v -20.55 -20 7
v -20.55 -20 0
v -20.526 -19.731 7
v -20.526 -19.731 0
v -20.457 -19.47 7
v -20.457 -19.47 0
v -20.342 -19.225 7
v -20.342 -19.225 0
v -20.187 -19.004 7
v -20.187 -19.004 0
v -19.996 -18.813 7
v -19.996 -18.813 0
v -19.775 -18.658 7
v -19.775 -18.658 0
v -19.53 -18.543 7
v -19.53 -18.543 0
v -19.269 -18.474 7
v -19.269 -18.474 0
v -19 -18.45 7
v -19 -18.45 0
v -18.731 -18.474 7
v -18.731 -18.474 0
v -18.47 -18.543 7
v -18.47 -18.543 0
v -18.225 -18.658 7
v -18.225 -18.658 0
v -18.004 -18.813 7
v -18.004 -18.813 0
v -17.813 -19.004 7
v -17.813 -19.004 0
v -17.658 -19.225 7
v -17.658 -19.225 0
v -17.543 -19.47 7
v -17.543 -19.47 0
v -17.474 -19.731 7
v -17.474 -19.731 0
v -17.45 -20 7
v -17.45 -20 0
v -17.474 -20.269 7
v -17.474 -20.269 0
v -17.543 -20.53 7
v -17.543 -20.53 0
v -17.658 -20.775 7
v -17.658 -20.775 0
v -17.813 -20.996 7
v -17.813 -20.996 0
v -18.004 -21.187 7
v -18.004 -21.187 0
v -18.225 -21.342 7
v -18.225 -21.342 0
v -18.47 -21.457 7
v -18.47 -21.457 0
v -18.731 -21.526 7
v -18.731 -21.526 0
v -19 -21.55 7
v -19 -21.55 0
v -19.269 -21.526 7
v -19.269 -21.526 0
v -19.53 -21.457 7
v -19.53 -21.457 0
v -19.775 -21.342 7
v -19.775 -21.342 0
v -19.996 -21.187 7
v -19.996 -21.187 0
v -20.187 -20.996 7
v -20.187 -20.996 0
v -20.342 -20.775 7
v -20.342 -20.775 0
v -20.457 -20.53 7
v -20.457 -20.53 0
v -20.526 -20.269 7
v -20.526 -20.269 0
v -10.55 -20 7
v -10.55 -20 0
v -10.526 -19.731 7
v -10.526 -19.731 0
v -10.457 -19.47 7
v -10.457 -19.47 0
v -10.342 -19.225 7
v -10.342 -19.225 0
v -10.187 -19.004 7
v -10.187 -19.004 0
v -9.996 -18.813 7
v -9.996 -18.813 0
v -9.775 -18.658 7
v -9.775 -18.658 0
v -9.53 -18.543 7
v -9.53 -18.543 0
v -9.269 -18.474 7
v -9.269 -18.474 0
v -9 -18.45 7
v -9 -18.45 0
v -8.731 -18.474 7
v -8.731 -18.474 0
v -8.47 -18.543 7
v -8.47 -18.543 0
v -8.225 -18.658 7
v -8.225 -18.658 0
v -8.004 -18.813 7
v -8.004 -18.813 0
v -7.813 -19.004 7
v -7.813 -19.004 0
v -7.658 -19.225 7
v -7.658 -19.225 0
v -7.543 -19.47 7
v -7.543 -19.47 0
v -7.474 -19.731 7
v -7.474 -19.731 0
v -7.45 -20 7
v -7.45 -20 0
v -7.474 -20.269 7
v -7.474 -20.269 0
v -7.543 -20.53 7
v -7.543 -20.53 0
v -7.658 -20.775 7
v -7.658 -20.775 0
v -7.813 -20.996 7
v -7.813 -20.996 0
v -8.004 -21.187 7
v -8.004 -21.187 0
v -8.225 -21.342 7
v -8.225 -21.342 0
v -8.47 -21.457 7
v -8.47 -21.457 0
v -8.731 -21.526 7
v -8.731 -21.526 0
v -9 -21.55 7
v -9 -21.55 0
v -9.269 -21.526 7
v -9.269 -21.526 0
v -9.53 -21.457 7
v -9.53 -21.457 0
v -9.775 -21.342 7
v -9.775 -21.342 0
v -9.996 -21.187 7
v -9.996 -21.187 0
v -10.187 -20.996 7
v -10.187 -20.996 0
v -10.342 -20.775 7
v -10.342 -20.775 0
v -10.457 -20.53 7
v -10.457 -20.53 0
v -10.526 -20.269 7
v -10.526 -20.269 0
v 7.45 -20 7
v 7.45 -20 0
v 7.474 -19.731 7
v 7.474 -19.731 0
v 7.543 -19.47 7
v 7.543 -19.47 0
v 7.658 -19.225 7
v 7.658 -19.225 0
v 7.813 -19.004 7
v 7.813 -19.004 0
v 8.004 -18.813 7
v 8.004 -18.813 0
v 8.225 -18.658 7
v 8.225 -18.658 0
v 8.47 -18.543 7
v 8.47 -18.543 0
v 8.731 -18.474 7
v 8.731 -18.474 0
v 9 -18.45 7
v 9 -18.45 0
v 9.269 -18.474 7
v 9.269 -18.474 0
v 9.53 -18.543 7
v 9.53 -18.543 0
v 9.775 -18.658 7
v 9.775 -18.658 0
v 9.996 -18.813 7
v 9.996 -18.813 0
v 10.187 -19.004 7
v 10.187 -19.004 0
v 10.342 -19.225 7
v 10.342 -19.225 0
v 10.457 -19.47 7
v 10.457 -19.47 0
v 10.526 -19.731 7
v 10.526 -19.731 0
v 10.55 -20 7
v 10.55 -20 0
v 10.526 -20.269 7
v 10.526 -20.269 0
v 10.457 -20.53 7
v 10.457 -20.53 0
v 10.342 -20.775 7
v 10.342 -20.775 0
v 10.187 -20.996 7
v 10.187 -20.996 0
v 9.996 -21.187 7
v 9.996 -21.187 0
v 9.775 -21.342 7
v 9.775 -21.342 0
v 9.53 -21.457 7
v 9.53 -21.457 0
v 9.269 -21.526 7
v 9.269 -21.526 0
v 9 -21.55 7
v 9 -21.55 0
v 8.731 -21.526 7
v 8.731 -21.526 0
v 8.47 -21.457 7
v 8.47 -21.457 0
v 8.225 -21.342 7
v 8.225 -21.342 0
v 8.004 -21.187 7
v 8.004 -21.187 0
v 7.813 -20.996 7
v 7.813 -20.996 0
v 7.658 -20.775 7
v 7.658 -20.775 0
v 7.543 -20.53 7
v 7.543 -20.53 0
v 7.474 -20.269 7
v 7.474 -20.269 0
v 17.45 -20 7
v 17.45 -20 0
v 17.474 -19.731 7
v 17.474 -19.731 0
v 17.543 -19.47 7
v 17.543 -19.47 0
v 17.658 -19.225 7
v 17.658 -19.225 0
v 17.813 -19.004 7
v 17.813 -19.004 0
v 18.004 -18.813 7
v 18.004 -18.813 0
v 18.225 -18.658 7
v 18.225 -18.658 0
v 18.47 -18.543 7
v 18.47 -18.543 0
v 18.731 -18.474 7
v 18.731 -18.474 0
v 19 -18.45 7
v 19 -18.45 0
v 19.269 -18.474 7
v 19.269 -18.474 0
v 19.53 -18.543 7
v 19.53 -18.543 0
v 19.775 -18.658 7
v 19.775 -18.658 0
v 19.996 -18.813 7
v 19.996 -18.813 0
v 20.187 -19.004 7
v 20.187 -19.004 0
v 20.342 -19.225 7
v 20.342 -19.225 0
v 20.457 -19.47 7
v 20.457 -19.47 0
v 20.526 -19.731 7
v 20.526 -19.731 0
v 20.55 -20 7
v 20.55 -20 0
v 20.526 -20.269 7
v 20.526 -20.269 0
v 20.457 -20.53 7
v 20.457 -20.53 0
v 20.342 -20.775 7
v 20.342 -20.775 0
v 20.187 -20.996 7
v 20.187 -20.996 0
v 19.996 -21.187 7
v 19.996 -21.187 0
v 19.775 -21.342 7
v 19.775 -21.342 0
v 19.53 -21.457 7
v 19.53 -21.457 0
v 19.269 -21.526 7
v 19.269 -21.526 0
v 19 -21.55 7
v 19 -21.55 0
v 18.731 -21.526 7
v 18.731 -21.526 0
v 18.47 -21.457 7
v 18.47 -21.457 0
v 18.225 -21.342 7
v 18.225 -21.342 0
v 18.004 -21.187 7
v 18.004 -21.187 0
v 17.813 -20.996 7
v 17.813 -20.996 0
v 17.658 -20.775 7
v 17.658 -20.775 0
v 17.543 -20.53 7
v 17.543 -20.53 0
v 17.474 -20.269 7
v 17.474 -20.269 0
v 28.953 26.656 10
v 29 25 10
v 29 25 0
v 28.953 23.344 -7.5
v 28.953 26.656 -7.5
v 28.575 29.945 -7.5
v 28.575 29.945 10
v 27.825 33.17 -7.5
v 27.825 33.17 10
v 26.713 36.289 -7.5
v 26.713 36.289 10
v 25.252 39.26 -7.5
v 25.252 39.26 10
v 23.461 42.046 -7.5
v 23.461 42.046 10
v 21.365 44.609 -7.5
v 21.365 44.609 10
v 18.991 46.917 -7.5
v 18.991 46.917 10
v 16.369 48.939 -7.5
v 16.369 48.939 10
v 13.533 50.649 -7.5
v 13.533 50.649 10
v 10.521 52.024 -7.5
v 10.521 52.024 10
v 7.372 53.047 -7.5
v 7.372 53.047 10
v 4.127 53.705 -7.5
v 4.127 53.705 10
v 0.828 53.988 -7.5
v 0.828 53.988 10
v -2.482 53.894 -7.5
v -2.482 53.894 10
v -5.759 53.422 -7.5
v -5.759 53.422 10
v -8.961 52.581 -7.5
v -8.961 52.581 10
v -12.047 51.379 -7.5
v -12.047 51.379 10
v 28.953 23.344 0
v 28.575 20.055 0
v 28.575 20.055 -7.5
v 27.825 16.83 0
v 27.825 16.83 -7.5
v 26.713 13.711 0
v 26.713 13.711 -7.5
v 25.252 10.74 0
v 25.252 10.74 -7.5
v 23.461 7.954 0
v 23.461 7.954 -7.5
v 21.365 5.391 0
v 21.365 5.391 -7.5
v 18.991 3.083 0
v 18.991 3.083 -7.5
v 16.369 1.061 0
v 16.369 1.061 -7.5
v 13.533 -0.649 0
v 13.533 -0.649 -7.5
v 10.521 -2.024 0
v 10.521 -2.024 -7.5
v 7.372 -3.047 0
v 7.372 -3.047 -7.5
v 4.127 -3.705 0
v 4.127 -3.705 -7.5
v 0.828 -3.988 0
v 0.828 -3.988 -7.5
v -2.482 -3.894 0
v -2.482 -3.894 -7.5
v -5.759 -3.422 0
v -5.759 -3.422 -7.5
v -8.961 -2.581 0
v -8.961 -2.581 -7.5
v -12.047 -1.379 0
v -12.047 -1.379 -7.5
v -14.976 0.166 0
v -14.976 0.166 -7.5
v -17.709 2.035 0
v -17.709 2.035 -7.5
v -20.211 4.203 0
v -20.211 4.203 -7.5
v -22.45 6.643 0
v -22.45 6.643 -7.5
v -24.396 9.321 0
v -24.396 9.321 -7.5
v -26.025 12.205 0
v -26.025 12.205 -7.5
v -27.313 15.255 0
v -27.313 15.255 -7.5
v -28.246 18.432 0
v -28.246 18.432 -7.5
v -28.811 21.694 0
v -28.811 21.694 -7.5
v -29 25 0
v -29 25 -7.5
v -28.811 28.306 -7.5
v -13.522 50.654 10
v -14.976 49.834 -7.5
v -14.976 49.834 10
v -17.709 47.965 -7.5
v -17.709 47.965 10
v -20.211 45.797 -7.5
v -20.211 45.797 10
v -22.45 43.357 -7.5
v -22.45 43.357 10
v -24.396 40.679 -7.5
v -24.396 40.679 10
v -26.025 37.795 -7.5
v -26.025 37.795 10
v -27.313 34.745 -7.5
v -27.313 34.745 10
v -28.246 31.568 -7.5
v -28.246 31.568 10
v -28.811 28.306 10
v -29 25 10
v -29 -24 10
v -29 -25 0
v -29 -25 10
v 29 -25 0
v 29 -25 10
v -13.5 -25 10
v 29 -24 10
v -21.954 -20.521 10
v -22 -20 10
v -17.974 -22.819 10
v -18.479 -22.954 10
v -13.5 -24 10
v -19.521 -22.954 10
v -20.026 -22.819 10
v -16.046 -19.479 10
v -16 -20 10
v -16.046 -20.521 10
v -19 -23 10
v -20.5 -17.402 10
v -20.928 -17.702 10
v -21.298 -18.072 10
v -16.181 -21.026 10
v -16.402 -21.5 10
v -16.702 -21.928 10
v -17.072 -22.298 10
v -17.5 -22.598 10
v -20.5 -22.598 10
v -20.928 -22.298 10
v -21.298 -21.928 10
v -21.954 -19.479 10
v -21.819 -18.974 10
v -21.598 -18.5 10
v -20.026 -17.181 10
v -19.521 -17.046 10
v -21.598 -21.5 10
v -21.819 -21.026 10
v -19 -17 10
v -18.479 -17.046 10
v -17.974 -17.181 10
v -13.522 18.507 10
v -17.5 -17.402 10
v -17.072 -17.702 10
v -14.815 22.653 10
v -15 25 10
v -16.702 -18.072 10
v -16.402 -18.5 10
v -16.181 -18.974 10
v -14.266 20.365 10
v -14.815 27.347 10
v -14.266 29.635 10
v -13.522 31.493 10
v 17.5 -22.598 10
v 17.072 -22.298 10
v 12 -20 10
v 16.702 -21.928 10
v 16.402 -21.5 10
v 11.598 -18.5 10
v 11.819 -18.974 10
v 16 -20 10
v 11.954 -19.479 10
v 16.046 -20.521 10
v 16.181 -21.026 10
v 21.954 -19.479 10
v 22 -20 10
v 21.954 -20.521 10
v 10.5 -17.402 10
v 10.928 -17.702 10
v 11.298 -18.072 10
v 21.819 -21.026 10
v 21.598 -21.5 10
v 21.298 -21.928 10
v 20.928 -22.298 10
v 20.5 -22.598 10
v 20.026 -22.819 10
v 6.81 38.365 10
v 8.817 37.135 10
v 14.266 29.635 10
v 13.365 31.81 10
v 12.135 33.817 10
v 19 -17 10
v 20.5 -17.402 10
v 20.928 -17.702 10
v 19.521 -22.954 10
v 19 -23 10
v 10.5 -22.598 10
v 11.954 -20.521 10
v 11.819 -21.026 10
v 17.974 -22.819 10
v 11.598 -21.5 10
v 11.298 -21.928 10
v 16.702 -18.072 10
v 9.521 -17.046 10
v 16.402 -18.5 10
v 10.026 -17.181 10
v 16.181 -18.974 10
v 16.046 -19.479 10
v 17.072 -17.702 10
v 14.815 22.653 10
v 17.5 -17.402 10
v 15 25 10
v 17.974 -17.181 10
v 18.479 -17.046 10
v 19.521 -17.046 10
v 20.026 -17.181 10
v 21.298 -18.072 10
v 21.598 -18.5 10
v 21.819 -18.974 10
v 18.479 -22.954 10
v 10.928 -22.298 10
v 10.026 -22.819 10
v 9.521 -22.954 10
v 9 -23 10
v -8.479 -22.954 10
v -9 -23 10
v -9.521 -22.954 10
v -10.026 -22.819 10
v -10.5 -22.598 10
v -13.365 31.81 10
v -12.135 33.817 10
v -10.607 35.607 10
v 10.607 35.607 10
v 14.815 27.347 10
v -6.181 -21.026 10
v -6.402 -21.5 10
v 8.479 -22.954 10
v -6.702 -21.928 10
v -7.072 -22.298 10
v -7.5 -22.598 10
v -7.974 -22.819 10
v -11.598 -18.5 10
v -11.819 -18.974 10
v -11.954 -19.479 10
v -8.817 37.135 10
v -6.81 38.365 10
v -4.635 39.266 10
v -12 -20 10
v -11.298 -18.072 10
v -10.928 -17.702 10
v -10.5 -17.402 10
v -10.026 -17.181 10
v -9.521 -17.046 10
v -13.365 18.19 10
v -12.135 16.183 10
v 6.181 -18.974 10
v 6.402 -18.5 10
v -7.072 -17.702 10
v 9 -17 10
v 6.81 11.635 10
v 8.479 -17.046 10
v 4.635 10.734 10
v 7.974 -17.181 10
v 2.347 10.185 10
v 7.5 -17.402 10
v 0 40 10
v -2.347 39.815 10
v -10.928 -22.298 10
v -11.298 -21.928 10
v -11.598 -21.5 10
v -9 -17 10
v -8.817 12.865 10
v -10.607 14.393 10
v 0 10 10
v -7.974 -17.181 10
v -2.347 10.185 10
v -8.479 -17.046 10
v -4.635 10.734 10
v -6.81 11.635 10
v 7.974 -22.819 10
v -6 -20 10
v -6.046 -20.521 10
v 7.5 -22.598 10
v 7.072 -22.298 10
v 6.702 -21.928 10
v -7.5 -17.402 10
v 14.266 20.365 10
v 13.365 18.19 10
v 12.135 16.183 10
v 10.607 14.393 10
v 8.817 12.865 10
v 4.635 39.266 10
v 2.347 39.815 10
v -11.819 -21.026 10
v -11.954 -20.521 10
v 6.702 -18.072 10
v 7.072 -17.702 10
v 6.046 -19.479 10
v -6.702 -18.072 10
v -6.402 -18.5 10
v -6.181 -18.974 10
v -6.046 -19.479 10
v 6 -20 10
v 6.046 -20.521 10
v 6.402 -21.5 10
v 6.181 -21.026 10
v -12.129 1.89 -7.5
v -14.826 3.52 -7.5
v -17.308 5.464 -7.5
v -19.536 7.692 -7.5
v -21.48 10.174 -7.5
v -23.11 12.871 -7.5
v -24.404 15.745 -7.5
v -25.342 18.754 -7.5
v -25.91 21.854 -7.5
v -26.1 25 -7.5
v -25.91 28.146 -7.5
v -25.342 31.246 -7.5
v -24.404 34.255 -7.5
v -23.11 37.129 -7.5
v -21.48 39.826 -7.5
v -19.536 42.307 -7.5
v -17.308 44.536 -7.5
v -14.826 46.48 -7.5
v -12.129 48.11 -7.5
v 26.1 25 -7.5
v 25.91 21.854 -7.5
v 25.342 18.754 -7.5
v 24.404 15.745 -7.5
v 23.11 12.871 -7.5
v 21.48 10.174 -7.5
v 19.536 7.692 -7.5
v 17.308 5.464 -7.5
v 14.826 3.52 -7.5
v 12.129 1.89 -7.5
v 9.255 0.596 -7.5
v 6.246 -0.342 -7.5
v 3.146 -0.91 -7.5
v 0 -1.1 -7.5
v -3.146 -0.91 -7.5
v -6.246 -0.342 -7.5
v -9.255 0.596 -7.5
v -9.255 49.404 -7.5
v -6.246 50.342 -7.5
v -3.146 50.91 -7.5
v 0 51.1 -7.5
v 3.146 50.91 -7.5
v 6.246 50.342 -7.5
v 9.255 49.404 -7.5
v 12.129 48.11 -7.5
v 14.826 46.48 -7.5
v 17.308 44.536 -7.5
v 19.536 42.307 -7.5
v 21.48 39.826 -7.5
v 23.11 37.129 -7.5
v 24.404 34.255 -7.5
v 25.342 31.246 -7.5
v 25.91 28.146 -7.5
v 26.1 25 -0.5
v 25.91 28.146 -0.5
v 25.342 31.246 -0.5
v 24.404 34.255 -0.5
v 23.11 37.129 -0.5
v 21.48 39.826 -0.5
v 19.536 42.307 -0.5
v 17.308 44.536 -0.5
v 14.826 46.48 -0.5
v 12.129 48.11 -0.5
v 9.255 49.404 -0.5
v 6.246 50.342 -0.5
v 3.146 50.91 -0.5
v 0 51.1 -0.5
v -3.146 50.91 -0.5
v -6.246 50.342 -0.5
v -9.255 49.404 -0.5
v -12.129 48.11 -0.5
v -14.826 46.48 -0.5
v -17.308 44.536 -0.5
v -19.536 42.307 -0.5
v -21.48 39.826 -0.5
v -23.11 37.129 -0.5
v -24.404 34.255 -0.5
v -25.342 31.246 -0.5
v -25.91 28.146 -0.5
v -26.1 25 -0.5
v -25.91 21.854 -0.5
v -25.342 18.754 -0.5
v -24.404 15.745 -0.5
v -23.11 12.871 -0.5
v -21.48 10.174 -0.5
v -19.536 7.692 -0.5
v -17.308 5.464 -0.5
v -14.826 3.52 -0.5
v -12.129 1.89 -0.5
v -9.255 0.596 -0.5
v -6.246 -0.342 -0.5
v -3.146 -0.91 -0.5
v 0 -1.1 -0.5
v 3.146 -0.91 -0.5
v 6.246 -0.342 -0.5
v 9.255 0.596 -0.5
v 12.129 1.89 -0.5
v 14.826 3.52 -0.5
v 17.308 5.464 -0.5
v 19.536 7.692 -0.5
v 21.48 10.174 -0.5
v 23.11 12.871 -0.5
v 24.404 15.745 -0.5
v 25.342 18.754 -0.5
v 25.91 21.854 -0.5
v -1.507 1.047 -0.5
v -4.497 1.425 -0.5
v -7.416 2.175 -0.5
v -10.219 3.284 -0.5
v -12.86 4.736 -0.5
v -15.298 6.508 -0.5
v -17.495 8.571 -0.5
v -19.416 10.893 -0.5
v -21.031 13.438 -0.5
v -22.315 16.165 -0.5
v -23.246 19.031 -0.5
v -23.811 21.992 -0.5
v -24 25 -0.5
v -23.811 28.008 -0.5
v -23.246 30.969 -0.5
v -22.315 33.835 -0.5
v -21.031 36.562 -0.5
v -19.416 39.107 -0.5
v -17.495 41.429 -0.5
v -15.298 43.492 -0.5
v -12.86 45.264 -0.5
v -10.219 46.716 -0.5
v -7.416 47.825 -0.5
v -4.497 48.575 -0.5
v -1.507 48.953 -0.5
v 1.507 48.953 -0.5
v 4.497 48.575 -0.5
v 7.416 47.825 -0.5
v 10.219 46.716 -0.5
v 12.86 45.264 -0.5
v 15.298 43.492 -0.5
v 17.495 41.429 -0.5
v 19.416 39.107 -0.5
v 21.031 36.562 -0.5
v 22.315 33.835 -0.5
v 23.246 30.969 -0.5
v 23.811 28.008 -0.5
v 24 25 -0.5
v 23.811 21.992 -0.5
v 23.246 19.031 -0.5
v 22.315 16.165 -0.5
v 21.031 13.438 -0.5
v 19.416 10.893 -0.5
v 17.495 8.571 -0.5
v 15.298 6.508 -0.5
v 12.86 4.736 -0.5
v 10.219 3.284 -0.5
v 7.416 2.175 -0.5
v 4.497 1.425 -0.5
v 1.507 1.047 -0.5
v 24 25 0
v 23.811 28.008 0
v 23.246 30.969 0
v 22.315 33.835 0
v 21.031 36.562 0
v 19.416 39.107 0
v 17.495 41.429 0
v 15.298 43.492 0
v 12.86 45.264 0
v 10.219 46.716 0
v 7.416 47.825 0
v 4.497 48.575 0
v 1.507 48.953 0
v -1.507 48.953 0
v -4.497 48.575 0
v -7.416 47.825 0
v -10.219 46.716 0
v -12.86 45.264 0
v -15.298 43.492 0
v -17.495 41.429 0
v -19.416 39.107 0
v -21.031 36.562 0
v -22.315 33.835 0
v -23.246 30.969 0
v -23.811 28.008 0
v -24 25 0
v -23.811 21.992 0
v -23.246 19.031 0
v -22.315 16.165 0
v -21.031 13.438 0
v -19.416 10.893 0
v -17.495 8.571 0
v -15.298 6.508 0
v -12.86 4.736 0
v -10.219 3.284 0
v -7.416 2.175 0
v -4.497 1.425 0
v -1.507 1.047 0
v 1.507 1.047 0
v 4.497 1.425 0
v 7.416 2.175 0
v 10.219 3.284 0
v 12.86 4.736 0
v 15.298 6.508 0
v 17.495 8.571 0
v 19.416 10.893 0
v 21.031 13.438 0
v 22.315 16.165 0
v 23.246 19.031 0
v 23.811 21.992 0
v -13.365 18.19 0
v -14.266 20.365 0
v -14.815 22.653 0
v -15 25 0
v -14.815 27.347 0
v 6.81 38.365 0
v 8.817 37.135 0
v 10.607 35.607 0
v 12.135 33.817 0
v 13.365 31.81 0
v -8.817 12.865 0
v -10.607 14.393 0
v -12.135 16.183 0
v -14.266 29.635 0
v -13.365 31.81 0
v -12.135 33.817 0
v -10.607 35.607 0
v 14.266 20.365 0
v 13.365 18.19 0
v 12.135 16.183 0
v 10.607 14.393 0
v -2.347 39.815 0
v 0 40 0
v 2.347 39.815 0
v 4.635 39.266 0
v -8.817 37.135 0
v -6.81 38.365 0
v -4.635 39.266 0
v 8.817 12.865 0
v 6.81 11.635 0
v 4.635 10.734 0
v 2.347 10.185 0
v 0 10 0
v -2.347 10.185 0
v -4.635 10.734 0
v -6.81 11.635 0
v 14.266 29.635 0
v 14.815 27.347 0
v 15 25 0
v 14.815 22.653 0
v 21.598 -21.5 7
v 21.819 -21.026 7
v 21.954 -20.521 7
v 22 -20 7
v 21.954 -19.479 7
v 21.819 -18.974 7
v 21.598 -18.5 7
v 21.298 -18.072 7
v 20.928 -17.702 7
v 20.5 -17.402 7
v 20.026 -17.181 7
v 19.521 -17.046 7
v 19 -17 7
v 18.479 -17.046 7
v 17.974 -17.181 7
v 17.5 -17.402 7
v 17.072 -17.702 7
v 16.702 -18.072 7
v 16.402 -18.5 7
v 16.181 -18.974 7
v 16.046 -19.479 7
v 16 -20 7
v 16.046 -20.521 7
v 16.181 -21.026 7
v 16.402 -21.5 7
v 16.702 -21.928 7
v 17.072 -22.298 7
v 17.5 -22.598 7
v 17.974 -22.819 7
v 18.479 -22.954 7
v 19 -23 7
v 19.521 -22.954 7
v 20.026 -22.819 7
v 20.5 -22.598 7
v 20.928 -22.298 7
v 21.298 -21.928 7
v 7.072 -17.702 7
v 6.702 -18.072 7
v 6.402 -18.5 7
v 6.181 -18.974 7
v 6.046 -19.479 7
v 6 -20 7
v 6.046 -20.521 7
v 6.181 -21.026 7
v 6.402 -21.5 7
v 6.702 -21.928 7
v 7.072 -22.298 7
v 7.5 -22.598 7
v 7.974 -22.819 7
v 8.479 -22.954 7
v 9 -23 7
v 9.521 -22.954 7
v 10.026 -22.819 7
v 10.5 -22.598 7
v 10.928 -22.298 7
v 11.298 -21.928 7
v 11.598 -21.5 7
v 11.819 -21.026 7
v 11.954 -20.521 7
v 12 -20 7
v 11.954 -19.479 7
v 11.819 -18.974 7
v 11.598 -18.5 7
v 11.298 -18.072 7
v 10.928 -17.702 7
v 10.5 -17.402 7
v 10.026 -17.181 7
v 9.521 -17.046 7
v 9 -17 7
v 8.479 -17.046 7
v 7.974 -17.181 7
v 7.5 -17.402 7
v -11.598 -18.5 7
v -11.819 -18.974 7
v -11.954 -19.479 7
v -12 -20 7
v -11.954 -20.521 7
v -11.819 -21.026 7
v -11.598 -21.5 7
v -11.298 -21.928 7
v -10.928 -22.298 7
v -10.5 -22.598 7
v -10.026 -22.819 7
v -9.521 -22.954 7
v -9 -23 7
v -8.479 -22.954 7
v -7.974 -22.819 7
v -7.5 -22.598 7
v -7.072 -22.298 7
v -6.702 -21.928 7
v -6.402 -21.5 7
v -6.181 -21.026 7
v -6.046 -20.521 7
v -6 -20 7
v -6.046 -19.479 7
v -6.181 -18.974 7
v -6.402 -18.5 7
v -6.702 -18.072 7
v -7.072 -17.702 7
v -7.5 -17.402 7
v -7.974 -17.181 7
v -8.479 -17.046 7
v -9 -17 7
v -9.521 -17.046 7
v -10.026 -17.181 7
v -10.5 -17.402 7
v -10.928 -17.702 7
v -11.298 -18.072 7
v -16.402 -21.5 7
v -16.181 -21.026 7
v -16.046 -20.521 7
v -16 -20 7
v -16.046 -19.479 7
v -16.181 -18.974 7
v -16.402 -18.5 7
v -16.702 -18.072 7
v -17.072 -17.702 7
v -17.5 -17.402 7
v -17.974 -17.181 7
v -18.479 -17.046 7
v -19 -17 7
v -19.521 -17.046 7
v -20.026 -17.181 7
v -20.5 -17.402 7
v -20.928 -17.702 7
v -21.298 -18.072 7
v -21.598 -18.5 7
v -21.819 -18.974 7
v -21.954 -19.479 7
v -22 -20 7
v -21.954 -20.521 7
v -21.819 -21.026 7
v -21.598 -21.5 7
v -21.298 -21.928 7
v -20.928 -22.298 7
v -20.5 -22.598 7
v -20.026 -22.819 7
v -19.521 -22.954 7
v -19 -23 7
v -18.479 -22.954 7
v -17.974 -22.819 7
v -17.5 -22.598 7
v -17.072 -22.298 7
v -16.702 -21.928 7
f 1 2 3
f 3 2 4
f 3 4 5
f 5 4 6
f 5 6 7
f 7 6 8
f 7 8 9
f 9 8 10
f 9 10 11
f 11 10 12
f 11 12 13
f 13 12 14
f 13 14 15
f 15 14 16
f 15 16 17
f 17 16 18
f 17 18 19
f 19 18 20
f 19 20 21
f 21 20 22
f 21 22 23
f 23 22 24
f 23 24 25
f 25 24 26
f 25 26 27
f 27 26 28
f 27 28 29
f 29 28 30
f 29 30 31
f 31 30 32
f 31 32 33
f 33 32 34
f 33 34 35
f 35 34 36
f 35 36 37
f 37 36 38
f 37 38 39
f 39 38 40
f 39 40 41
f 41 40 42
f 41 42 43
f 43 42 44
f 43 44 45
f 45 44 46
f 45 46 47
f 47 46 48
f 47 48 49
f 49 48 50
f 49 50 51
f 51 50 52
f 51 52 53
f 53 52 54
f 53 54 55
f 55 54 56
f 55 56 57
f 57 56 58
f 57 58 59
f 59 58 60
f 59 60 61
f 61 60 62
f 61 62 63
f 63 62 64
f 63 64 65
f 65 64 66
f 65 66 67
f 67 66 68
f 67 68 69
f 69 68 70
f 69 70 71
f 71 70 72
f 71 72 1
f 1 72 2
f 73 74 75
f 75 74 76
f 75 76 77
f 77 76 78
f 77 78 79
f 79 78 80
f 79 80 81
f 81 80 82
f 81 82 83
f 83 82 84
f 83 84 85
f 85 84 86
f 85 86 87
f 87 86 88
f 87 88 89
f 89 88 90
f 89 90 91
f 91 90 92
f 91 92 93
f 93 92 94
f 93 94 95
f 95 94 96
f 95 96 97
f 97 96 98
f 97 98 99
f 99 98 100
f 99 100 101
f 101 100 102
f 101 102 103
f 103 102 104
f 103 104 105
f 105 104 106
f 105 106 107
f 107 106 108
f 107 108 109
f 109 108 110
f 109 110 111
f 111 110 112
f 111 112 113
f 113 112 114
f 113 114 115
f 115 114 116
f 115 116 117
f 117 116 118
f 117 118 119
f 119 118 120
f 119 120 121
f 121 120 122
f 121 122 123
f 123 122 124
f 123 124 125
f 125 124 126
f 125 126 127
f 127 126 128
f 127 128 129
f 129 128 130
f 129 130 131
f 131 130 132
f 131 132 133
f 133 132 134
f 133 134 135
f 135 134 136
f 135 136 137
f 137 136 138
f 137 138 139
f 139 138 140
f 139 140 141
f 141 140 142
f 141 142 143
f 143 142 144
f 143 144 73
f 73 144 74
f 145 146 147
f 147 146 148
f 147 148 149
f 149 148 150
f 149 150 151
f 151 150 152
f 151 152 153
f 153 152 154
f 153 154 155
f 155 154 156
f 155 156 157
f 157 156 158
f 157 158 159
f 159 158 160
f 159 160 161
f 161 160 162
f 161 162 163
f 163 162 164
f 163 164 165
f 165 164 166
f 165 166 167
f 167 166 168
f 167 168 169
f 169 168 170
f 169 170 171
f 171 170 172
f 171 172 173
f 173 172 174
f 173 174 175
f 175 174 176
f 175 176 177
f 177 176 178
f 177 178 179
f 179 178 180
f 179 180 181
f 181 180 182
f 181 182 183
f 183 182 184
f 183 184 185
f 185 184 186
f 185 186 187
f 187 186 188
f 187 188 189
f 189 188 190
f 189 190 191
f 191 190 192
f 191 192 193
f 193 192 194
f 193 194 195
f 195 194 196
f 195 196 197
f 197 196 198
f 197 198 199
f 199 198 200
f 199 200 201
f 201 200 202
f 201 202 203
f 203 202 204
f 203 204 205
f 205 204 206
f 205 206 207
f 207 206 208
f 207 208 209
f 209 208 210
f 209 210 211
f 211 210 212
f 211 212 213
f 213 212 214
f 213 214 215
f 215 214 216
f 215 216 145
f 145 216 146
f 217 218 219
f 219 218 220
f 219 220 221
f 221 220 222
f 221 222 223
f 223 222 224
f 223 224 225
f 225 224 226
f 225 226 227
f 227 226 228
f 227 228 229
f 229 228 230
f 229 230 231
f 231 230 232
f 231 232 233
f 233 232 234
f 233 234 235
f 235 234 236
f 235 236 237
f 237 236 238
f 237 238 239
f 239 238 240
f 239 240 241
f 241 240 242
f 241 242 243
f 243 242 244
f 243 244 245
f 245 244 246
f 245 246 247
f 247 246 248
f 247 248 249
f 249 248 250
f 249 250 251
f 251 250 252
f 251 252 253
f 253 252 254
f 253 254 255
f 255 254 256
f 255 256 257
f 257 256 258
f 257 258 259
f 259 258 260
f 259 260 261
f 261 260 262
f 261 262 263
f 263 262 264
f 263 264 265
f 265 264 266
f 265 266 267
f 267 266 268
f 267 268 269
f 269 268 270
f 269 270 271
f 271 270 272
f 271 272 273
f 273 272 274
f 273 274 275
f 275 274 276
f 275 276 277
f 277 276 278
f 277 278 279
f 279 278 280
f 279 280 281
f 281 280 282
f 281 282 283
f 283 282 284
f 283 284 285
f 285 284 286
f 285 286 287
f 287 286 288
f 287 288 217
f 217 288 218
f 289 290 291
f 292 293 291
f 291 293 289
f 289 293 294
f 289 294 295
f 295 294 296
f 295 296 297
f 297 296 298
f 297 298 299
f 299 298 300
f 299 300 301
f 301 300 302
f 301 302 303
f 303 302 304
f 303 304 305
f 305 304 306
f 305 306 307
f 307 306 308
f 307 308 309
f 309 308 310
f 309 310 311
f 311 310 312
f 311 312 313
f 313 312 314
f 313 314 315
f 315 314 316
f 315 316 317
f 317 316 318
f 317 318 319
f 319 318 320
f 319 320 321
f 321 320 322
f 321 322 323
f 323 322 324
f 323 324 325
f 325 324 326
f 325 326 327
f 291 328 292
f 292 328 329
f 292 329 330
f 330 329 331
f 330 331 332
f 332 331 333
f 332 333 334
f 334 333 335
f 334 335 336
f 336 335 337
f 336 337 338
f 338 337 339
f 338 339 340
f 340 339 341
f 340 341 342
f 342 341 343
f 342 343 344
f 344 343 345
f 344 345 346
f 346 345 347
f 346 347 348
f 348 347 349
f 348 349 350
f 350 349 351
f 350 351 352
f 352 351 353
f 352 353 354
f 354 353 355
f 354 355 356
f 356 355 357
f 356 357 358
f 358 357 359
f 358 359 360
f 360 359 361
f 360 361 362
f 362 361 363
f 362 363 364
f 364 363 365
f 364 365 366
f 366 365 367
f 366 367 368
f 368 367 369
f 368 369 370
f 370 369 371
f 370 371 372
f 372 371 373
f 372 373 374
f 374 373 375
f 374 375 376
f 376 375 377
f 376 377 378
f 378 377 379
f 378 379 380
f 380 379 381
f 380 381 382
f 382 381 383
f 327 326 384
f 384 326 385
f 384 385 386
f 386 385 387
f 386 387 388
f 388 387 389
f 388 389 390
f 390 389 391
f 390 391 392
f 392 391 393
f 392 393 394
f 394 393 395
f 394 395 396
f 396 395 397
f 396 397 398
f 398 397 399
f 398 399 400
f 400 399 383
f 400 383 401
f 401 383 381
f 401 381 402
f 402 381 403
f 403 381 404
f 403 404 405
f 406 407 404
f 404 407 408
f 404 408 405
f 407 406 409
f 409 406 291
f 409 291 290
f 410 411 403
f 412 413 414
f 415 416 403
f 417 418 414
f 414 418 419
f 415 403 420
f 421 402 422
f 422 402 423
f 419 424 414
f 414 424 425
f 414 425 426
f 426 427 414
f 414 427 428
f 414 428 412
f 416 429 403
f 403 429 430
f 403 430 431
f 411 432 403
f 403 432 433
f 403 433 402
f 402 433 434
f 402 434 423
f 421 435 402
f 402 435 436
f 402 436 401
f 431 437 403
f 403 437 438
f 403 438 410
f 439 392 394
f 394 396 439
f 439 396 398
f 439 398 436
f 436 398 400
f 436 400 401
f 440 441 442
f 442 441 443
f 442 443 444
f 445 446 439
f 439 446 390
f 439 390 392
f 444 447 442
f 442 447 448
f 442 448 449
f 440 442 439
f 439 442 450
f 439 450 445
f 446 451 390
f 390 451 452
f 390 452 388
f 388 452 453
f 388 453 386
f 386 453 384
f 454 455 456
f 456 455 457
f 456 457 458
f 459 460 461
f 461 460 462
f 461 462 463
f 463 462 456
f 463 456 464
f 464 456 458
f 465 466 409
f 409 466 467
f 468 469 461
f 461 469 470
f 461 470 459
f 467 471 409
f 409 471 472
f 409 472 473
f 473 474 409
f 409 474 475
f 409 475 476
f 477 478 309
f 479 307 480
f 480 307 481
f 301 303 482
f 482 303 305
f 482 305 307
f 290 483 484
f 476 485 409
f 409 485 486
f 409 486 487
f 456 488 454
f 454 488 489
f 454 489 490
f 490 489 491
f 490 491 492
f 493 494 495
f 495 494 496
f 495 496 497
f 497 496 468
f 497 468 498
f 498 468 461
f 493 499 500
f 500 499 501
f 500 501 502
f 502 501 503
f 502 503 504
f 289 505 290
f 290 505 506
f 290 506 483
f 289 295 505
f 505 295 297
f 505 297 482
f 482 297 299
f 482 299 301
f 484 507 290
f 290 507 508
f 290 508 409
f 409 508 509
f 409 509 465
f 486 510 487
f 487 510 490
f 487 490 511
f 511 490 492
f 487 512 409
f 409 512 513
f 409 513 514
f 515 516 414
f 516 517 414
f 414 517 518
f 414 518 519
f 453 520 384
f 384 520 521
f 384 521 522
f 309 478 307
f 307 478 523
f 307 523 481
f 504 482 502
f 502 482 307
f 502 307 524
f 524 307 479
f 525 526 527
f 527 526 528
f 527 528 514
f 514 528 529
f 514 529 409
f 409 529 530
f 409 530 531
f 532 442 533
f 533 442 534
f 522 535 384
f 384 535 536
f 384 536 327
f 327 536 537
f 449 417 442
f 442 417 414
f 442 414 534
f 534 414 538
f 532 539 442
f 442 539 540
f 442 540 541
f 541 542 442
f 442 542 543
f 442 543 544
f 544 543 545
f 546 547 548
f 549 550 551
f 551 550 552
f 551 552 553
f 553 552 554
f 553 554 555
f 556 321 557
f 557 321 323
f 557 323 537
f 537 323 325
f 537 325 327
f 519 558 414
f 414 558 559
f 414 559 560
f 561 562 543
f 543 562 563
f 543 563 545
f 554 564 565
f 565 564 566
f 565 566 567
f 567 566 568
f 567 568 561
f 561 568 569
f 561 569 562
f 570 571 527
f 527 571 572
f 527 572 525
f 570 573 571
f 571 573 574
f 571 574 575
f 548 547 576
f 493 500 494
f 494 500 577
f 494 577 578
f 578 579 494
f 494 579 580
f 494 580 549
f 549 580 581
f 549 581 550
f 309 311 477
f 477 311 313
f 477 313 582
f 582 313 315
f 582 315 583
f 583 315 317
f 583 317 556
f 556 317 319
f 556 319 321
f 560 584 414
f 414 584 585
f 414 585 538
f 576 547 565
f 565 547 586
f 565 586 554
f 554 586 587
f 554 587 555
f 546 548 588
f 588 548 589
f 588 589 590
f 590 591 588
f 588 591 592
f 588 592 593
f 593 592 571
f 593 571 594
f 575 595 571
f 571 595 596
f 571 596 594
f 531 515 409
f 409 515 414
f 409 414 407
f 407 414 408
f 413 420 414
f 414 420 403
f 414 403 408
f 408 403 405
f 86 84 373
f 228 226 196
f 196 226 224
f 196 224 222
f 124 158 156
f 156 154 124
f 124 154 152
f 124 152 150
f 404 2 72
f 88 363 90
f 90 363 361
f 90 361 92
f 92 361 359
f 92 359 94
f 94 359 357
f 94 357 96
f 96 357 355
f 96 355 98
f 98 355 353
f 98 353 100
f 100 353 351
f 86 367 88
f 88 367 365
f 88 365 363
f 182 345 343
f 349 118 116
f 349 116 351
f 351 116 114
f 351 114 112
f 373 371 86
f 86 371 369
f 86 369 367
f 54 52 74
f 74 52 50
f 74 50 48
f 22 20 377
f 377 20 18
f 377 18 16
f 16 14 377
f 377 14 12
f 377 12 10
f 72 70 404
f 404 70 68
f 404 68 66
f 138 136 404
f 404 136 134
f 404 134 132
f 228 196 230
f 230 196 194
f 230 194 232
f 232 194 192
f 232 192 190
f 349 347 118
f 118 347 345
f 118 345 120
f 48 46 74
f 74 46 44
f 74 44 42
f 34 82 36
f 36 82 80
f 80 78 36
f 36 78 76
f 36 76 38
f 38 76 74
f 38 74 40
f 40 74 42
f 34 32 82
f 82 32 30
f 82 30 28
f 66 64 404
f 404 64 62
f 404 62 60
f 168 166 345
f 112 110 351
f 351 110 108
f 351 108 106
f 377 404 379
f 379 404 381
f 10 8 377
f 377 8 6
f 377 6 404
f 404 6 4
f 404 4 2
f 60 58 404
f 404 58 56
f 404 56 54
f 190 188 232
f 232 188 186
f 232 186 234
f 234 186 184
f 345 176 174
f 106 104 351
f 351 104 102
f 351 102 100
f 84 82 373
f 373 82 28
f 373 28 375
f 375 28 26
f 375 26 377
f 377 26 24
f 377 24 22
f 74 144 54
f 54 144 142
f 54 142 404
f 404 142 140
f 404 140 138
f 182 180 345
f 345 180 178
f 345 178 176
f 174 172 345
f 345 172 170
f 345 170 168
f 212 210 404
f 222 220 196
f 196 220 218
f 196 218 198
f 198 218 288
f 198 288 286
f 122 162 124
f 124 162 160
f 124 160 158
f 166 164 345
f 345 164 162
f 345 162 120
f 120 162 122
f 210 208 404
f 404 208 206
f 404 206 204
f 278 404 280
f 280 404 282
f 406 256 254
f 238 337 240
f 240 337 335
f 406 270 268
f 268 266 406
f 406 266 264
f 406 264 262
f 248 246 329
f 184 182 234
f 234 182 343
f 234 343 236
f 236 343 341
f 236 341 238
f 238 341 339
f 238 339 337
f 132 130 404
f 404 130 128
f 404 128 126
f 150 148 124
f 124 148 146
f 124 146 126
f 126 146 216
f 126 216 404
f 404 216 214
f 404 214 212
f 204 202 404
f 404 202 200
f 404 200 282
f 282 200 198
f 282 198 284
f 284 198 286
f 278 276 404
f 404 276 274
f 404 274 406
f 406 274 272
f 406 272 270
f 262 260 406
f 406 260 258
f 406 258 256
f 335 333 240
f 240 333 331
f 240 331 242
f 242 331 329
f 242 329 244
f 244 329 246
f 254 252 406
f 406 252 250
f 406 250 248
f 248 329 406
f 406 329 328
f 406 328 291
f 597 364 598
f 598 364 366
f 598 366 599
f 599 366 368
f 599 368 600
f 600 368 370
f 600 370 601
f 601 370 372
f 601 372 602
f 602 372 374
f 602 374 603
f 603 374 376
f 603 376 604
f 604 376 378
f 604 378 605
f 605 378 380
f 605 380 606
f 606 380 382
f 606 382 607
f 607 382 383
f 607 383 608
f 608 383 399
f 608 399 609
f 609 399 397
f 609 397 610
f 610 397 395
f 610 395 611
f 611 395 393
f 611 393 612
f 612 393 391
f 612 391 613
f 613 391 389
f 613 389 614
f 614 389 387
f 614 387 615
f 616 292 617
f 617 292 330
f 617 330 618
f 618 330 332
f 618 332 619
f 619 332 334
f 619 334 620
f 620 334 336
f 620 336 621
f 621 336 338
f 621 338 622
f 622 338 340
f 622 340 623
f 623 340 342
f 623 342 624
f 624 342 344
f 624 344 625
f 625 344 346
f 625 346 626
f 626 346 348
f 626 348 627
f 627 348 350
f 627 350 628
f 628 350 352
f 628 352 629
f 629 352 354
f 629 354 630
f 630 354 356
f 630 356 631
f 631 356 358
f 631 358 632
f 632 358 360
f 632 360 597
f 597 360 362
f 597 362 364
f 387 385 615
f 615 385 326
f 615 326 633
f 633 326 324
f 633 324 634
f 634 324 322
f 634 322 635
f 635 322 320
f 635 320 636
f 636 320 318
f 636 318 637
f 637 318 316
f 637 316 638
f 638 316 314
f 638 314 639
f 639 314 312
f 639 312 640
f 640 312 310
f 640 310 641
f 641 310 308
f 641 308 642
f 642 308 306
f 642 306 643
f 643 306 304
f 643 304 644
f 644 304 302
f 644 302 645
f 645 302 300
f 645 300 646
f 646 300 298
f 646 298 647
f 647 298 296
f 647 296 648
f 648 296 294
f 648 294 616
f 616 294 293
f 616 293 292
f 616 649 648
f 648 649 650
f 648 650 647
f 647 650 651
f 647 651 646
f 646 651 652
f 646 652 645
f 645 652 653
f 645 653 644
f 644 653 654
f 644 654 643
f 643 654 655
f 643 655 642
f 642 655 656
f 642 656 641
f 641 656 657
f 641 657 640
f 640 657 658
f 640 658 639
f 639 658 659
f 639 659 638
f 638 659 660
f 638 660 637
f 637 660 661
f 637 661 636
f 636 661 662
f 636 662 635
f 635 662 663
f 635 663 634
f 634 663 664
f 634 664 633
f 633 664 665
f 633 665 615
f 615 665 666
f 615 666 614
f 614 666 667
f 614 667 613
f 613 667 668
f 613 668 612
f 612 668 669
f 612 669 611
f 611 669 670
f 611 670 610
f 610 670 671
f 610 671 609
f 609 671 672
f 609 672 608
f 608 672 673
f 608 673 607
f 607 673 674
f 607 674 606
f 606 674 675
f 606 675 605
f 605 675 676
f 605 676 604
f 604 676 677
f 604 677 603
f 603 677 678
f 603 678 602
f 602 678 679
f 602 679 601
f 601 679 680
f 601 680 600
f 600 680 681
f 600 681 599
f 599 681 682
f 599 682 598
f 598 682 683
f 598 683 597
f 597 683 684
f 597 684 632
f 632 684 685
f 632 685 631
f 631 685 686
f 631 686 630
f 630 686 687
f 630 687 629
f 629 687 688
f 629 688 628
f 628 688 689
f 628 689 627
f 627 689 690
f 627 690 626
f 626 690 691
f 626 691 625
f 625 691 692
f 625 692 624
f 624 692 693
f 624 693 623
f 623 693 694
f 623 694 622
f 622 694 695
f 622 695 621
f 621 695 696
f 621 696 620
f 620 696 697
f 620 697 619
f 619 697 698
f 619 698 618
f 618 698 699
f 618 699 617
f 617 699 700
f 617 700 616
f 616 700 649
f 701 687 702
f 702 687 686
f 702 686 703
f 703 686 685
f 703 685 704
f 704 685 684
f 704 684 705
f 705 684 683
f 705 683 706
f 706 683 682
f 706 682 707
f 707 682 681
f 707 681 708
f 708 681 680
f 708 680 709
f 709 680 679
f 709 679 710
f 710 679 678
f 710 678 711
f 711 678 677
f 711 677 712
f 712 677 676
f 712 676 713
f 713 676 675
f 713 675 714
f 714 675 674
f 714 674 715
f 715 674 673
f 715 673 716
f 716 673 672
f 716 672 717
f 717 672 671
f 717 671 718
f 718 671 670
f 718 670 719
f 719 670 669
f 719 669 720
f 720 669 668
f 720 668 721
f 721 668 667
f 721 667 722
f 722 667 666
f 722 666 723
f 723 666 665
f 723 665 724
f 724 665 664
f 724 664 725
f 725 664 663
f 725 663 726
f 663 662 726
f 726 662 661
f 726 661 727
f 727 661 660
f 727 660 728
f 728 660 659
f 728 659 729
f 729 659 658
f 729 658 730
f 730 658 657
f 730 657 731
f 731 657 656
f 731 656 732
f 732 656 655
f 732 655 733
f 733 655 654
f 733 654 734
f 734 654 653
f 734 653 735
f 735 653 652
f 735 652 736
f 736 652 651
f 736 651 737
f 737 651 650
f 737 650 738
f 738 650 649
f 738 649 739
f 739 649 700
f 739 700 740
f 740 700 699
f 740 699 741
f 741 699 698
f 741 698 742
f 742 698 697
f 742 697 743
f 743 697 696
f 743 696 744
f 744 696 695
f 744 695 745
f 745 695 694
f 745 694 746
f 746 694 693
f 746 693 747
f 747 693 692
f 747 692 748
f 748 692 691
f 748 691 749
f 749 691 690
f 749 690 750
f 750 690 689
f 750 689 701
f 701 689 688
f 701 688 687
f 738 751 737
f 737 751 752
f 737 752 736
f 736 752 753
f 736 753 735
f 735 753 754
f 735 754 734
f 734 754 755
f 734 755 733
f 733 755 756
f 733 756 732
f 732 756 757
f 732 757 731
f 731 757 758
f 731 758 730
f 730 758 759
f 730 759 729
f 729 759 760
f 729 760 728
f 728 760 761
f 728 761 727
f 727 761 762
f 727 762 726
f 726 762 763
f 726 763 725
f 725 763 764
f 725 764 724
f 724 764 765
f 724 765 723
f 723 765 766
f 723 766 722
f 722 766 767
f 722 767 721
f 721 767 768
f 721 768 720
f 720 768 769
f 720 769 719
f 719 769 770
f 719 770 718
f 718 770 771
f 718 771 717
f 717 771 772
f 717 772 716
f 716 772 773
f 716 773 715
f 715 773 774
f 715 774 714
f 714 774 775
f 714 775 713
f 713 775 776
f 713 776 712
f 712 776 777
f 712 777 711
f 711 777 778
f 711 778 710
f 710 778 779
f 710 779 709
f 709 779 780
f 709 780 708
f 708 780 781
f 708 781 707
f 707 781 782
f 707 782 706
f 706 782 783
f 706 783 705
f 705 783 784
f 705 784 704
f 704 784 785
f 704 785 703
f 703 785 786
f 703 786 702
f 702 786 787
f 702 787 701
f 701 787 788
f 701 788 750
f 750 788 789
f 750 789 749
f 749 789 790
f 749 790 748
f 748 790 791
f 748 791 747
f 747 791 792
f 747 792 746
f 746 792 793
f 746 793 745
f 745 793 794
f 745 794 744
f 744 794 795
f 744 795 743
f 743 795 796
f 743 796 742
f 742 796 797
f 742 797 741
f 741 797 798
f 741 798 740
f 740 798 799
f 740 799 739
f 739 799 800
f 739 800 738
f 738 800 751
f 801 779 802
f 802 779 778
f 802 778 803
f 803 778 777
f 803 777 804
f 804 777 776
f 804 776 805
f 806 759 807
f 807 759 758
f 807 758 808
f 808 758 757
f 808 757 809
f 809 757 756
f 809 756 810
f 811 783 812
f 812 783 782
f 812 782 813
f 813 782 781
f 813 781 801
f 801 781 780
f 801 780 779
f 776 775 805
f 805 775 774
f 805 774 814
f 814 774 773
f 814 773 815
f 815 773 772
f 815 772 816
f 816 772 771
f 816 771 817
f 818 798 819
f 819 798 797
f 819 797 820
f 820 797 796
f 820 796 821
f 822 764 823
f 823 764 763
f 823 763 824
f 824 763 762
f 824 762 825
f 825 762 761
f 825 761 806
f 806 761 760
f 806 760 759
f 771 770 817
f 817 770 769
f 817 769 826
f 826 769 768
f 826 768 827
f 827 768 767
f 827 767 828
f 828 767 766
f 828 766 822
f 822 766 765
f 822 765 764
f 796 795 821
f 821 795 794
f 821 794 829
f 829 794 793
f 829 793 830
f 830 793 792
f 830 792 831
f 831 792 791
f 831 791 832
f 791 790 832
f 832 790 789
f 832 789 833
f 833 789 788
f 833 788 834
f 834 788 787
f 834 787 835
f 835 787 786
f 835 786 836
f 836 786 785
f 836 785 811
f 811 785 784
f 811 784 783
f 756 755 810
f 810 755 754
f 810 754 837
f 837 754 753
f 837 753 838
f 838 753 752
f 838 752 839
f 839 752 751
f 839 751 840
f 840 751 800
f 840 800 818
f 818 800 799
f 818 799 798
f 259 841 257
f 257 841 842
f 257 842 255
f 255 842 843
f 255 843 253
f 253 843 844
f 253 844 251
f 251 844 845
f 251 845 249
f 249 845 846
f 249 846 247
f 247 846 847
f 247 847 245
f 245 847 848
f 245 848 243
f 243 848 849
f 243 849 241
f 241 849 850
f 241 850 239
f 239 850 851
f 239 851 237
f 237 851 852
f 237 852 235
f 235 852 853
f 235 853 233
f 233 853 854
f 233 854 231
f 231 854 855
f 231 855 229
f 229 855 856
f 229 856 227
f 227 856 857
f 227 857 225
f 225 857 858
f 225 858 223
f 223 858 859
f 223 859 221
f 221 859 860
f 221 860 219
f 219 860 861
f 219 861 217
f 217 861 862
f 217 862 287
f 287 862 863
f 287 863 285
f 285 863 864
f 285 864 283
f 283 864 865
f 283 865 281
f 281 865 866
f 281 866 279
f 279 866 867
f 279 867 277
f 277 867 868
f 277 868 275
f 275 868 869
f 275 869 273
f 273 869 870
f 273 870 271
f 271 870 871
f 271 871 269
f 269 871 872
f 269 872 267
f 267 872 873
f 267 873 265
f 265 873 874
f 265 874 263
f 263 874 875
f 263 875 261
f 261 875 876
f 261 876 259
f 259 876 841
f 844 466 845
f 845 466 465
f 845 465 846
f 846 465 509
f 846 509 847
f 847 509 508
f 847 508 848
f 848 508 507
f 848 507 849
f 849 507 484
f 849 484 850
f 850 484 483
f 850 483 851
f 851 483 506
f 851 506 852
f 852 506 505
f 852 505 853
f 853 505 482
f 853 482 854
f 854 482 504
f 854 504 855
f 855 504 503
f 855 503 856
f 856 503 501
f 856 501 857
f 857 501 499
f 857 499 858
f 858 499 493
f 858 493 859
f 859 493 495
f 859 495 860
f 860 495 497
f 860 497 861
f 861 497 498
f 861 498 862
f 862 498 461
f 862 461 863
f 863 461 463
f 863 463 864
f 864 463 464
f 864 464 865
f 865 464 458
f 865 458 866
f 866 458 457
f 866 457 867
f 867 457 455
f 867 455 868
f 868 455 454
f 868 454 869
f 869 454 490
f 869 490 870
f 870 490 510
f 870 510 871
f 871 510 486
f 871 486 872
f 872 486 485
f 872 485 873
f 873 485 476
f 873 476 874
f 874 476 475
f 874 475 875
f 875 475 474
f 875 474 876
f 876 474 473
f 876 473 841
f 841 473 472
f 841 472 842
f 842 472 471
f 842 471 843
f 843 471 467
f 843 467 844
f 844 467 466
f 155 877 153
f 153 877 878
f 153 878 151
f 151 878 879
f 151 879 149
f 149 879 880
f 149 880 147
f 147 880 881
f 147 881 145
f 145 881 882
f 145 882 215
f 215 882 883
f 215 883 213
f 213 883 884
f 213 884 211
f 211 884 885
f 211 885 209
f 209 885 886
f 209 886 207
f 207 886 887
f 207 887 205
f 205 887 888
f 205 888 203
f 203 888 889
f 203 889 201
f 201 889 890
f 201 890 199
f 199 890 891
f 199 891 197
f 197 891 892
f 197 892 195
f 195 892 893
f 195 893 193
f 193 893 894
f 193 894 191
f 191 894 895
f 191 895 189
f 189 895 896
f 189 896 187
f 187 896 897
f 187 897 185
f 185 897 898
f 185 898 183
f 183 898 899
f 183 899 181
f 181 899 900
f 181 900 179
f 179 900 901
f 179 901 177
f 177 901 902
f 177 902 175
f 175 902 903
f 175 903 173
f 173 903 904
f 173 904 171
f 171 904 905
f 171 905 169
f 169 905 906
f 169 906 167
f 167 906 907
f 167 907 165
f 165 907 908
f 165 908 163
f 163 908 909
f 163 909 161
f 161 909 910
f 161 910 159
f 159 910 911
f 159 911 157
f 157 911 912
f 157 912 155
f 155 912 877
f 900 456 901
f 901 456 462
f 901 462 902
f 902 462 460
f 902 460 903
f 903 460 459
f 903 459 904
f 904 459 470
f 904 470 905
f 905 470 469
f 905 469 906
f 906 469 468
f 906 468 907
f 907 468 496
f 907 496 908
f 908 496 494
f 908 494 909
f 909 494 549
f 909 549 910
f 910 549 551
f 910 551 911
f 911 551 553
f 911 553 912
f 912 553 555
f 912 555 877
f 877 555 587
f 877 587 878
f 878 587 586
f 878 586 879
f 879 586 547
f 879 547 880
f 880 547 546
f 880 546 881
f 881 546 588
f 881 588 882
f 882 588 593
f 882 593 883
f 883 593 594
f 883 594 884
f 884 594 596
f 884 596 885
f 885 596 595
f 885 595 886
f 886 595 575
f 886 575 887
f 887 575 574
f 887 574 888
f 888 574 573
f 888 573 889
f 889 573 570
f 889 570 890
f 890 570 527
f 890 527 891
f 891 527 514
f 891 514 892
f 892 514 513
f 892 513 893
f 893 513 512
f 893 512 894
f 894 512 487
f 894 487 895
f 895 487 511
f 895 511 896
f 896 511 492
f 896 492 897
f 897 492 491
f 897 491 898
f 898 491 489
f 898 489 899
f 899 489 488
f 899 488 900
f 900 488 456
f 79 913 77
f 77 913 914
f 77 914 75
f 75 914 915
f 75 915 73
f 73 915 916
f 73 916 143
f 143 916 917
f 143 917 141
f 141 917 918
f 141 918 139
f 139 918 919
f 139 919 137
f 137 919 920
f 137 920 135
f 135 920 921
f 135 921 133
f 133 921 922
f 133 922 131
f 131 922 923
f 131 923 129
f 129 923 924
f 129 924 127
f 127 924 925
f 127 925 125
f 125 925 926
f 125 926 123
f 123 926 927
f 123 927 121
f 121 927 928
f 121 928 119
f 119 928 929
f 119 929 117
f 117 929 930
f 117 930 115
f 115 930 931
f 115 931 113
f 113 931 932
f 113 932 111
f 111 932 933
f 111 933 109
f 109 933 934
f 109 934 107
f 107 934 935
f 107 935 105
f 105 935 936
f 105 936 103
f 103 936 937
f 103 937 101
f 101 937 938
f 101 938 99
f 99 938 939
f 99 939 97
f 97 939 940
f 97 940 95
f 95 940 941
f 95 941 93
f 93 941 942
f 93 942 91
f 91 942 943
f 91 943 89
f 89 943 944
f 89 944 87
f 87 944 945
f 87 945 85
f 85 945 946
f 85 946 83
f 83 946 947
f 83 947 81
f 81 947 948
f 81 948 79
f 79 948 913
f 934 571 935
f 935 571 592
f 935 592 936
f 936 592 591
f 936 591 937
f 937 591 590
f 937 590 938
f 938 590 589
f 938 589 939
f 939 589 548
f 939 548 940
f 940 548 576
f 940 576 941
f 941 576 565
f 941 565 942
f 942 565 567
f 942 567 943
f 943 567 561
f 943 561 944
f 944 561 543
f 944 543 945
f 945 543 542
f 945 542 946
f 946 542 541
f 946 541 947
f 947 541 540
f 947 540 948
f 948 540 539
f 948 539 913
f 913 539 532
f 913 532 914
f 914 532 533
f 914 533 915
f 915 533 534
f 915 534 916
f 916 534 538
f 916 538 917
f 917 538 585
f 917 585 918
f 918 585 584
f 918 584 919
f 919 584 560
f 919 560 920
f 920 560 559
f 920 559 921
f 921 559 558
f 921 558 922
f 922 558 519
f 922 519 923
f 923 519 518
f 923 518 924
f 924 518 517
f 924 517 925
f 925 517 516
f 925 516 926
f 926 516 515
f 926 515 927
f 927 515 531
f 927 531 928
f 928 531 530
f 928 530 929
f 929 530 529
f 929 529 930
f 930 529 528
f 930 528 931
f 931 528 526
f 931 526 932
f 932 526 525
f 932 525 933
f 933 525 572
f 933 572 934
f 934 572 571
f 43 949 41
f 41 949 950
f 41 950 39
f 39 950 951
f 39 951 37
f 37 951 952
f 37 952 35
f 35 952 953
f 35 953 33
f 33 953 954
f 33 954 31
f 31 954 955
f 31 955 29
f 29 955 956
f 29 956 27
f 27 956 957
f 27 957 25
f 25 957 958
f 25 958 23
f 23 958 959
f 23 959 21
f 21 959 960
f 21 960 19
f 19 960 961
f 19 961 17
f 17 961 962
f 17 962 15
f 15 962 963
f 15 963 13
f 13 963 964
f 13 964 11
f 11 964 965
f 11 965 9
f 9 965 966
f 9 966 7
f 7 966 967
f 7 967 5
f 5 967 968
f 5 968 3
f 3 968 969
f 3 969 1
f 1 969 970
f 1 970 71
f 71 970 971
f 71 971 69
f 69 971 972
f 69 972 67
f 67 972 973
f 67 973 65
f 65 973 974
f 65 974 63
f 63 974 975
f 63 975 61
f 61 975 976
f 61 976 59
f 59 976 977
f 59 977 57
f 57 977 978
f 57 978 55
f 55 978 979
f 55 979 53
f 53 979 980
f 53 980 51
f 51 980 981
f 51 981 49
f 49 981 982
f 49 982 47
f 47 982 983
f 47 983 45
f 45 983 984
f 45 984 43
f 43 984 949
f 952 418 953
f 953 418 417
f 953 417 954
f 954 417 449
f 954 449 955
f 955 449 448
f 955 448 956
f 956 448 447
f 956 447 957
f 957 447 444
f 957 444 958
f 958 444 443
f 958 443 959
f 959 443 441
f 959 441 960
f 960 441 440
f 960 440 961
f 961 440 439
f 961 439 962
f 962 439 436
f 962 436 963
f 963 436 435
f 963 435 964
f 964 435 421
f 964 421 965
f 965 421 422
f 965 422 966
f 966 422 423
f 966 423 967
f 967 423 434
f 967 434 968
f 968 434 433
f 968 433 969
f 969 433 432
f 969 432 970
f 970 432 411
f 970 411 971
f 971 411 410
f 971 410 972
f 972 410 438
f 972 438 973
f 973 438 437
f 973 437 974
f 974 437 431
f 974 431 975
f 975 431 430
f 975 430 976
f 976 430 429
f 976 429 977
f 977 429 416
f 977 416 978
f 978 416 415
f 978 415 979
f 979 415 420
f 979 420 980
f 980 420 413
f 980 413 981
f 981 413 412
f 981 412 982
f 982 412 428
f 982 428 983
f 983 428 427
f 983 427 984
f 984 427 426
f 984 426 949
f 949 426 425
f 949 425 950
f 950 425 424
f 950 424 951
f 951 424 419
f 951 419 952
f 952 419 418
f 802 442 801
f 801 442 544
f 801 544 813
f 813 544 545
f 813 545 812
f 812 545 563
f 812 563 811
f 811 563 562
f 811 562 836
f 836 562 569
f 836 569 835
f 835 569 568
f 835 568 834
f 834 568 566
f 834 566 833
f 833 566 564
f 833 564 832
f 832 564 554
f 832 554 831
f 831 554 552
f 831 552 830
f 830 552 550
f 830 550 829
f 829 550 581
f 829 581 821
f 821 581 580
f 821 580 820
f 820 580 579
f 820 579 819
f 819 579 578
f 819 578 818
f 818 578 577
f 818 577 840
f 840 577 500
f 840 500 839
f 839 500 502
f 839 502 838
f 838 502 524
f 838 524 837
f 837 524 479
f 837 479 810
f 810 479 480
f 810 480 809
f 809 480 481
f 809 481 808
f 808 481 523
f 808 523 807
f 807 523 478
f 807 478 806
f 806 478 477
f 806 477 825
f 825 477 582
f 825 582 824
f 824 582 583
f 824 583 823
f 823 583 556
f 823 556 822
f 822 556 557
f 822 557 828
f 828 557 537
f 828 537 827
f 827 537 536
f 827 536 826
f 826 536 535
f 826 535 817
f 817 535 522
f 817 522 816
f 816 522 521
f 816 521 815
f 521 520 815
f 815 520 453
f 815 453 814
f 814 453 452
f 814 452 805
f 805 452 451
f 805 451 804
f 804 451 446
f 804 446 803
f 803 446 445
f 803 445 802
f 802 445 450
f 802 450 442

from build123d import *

# Parameters (mm, degrees)
SKETCH_1_W          = 58
SKETCH_1_H          = 50
EXTRUDE_1_DEPTH     = 10
SKETCH_2_R          = 29
SKETCH_2_R_2        = 26.1
EXTRUDE_2_DEPTH     = 7.5
SKETCH_3_R          = 26.1
SKETCH_3_R_2        = 24
EXTRUDE_3_DEPTH     = 0.5
CUT_EXTRUDE_1_REACH = 12
SKETCH_5_R          = 1.55
SKETCH_6_R          = 3
CUT_EXTRUDE_2_DEPTH = 3
SKETCH_7_R          = 15
CUT_EXTRUDE_3_DEPTH = 11


with BuildPart() as part:
    # 草图1 → 凸台-拉伸1 (new body)
    with BuildSketch(Plane.XY):
        with BuildLine():
            ThreePointArc((-29, 25), (0, 54), (29, 25))
            Line((29, 25), (-29, 25))
        make_face()
        Rectangle(SKETCH_1_W, SKETCH_1_H)
    extrude(amount=EXTRUDE_1_DEPTH)

    # 草图2 → 凸台-拉伸2 (add)
    with BuildSketch(Plane(origin=(0, 0, 0), x_dir=(-1, 0, 0), z_dir=(0, 0, -1))):
        with Locations((0, 25)):
            Circle(SKETCH_2_R)
        with Locations((0, 25)):
            Circle(SKETCH_2_R_2, mode=Mode.SUBTRACT)
    extrude(amount=EXTRUDE_2_DEPTH)

    # 草图3 → 凸台-拉伸3 (add)
    with BuildSketch(Plane(origin=(0, 0, 0), x_dir=(-1, 0, 0), z_dir=(0, 0, -1))):
        with Locations((0, 25)):
            Circle(SKETCH_3_R)
        with Locations((0, 25)):
            Circle(SKETCH_3_R_2, mode=Mode.SUBTRACT)
    extrude(amount=EXTRUDE_3_DEPTH)

    # 草图5 → 切除-拉伸1 (cut, up to next)
    with BuildSketch(Plane(origin=(0, 0, 0), x_dir=(-1, 0, 0), z_dir=(0, 0, -1)), mode=Mode.PRIVATE) as cut_extrude_1_sk1:
        with Locations((-19, -20)):
            Circle(SKETCH_5_R)
    cut_extrude_1_tool1 = extrude(cut_extrude_1_sk1.sketch, amount=-CUT_EXTRUDE_1_REACH, mode=Mode.PRIVATE) & part.part
    add(cut_extrude_1_tool1.solids().sort_by_distance((19, -20, 0))[0], mode=Mode.SUBTRACT)
    # 草图5 → 切除-拉伸1 (cut, up to next)
    with BuildSketch(Plane(origin=(0, 0, 0), x_dir=(-1, 0, 0), z_dir=(0, 0, -1)), mode=Mode.PRIVATE) as cut_extrude_1_sk2:
        with Locations((-9, -20)):
            Circle(SKETCH_5_R)
    cut_extrude_1_tool2 = extrude(cut_extrude_1_sk2.sketch, amount=-CUT_EXTRUDE_1_REACH, mode=Mode.PRIVATE) & part.part
    add(cut_extrude_1_tool2.solids().sort_by_distance((9, -20, 0))[0], mode=Mode.SUBTRACT)
    # 草图5 → 切除-拉伸1 (cut, up to next)
    with BuildSketch(Plane(origin=(0, 0, 0), x_dir=(-1, 0, 0), z_dir=(0, 0, -1)), mode=Mode.PRIVATE) as cut_extrude_1_sk3:
        with Locations((9, -20)):
            Circle(SKETCH_5_R)
    cut_extrude_1_tool3 = extrude(cut_extrude_1_sk3.sketch, amount=-CUT_EXTRUDE_1_REACH, mode=Mode.PRIVATE) & part.part
    add(cut_extrude_1_tool3.solids().sort_by_distance((-9, -20, 0))[0], mode=Mode.SUBTRACT)
    # 草图5 → 切除-拉伸1 (cut, up to next)
    with BuildSketch(Plane(origin=(0, 0, 0), x_dir=(-1, 0, 0), z_dir=(0, 0, -1)), mode=Mode.PRIVATE) as cut_extrude_1_sk4:
        with Locations((19, -20)):
            Circle(SKETCH_5_R)
    cut_extrude_1_tool4 = extrude(cut_extrude_1_sk4.sketch, amount=-CUT_EXTRUDE_1_REACH, mode=Mode.PRIVATE) & part.part
    add(cut_extrude_1_tool4.solids().sort_by_distance((-19, -20, 0))[0], mode=Mode.SUBTRACT)

    # 草图6 → 切除-拉伸2 (cut)
    with BuildSketch(Plane.XY.offset(10)):
        with Locations((19, -20)):
            Circle(SKETCH_6_R)
        with Locations((9, -20)):
            Circle(SKETCH_6_R)
        with Locations((-9, -20)):
            Circle(SKETCH_6_R)
        with Locations((-19, -20)):
            Circle(SKETCH_6_R)
    extrude(amount=-CUT_EXTRUDE_2_DEPTH, mode=Mode.SUBTRACT)

    # 草图7 → 切除-拉伸3 (cut, through all)
    with BuildSketch(Plane(origin=(0, 0, 0), x_dir=(-1, 0, 0), z_dir=(0, 0, -1))):
        with Locations((0, 25)):
            Circle(SKETCH_7_R)
    extrude(amount=-CUT_EXTRUDE_3_DEPTH, mode=Mode.SUBTRACT)


solid = part.part
